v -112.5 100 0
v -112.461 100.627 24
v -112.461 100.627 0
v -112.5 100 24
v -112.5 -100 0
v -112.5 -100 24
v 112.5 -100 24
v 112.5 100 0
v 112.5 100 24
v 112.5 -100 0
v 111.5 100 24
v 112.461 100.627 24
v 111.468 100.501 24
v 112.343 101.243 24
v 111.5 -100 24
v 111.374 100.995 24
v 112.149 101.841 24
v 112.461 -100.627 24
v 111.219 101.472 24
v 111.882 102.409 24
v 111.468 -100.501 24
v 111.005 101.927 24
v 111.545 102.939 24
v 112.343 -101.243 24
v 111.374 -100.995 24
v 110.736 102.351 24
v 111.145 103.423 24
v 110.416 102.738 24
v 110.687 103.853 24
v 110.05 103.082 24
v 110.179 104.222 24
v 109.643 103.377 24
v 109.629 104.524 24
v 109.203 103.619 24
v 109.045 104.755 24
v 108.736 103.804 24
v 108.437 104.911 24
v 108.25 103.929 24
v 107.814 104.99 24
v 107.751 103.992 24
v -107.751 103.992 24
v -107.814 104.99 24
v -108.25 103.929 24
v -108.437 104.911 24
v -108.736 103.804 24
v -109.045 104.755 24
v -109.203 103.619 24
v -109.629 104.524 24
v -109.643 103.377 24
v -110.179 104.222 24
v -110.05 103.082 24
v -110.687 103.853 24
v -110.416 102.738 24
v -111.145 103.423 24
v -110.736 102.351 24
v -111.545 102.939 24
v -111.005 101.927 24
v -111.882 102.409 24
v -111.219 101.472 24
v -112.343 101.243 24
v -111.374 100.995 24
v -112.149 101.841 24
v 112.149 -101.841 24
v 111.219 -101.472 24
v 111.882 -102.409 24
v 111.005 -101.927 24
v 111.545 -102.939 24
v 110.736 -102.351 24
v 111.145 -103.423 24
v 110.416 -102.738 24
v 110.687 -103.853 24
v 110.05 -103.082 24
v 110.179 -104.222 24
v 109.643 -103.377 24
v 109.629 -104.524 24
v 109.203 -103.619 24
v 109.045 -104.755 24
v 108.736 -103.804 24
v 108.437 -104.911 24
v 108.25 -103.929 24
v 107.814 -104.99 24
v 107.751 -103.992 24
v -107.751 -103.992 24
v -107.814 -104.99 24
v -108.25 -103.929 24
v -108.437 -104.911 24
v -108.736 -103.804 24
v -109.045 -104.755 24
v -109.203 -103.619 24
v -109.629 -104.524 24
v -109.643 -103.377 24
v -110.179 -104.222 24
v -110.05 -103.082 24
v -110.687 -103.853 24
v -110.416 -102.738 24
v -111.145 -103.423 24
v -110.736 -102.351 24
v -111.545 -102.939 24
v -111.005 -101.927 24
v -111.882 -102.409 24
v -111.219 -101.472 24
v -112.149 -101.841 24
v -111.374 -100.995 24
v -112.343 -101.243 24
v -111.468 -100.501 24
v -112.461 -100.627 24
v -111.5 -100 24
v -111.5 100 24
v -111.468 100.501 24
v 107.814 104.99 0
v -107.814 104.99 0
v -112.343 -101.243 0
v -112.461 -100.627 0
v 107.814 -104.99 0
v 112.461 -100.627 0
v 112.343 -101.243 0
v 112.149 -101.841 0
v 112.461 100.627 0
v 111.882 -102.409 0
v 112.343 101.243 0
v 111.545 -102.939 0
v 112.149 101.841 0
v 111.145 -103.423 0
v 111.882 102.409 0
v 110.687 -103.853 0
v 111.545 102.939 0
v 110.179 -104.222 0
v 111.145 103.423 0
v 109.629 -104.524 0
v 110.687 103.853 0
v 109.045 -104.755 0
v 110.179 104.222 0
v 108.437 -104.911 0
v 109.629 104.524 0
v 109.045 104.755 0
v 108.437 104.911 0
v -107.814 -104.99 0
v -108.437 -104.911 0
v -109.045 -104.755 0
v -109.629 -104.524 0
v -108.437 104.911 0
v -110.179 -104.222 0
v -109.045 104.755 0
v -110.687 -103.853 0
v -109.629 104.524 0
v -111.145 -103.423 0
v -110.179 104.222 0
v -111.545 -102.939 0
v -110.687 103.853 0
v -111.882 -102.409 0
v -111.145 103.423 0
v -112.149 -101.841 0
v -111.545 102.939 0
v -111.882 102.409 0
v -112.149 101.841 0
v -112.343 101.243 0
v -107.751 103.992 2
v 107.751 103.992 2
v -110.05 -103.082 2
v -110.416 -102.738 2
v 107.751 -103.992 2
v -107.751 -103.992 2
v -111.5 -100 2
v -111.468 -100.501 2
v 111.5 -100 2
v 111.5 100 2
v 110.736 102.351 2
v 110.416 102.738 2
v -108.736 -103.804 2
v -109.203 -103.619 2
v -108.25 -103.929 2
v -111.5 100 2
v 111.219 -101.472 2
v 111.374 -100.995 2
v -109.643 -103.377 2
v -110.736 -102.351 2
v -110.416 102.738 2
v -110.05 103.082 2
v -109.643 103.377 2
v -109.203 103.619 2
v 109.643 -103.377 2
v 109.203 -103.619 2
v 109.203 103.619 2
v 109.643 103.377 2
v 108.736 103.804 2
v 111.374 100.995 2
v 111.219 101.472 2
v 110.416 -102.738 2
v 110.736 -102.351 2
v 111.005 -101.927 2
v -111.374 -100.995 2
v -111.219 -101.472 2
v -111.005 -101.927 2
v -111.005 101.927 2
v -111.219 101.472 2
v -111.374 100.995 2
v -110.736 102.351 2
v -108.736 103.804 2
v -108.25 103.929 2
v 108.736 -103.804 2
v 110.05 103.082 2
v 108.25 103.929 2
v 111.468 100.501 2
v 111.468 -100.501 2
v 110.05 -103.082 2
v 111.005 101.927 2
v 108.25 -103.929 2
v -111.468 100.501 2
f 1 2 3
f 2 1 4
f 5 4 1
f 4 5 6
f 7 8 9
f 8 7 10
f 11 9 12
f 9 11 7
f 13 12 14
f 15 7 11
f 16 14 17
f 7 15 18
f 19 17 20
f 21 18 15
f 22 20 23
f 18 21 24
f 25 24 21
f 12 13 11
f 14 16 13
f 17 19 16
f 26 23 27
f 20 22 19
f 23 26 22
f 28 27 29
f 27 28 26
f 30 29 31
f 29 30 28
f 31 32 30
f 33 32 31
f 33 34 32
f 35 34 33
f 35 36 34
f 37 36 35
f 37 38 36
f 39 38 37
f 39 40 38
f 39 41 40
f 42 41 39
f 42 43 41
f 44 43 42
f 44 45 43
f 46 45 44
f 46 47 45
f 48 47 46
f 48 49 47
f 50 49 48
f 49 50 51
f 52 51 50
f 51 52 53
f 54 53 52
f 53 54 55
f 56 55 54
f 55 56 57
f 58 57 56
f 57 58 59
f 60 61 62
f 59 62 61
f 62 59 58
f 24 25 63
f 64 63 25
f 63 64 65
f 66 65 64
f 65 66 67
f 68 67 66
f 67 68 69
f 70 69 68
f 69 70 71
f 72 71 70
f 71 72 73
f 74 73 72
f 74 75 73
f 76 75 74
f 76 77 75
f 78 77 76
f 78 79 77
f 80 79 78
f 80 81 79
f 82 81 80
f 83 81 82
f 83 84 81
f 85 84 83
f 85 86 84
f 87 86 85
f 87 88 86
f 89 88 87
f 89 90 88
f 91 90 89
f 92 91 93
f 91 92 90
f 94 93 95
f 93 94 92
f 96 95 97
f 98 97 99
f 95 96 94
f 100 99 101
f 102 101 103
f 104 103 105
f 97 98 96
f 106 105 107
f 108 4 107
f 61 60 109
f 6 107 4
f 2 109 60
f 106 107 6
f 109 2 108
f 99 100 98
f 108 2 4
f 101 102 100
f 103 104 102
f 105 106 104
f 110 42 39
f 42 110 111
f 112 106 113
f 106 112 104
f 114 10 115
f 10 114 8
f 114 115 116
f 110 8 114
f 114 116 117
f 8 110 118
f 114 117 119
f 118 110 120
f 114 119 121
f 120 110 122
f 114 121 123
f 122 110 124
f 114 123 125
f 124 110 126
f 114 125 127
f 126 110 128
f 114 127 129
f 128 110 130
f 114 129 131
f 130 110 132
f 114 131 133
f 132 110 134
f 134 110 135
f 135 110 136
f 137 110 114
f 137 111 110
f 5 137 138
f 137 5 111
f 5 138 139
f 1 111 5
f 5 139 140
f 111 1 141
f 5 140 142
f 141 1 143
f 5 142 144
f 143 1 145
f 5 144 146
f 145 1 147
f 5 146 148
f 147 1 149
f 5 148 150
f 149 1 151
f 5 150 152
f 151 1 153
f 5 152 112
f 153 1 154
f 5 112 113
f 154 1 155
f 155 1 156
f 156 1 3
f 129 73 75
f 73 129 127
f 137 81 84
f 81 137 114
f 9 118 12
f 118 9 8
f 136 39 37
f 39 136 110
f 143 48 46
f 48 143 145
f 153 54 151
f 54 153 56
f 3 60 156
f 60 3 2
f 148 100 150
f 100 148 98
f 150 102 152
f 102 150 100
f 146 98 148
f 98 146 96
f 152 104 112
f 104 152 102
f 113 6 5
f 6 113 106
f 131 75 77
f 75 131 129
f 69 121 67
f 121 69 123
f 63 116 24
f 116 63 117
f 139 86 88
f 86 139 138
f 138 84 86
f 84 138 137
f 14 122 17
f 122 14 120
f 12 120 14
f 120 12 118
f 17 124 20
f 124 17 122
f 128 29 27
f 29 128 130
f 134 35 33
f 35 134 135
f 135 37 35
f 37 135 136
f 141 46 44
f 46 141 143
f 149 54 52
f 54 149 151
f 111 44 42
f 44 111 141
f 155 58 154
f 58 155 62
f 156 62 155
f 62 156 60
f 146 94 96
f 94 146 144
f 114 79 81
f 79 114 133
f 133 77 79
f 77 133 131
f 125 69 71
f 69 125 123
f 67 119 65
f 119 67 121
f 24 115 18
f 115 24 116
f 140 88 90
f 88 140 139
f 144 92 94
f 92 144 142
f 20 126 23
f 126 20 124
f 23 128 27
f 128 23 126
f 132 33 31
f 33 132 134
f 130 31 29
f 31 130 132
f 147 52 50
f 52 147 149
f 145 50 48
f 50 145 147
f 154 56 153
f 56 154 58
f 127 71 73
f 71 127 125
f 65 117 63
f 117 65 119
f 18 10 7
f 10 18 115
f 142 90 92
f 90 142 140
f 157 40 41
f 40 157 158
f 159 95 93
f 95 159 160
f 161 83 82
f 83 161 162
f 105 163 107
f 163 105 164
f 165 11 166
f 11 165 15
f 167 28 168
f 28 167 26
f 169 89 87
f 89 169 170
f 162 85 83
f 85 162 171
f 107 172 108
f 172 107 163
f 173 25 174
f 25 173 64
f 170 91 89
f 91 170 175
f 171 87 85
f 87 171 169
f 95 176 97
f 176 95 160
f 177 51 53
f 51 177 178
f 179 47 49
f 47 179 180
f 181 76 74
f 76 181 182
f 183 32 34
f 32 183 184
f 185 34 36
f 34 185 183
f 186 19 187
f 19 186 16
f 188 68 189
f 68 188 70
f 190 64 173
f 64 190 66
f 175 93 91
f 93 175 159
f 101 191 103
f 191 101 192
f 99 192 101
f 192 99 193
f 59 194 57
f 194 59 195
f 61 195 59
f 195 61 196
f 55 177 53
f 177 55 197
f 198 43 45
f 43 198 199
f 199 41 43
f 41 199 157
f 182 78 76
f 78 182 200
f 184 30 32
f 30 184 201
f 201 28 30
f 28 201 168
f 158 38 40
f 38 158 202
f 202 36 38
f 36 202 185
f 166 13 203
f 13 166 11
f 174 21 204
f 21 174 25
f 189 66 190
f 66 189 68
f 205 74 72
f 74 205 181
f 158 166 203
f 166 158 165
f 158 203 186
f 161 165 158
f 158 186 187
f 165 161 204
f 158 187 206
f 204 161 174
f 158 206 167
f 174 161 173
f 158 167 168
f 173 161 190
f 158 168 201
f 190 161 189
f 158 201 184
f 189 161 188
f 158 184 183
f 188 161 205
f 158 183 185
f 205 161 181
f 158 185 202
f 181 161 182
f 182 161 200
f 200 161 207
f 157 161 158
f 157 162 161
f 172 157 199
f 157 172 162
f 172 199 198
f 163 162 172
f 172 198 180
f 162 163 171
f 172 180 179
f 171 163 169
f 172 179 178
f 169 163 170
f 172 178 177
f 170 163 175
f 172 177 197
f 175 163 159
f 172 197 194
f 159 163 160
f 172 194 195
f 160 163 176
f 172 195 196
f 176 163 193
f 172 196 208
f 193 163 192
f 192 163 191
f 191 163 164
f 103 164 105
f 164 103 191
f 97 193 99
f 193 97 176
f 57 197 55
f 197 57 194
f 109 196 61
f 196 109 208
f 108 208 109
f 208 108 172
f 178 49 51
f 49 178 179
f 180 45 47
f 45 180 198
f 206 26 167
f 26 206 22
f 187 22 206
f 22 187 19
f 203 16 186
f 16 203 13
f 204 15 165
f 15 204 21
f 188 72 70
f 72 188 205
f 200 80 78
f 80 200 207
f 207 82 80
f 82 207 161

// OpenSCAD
$fn = 50;


difference() {
	union() {
		hull() {
			translate(v = [-107.5000000000, 100.0000000000, 0]) {
				cylinder(h = 24, r = 5);
			}
			translate(v = [107.5000000000, 100.0000000000, 0]) {
				cylinder(h = 24, r = 5);
			}
			translate(v = [-107.5000000000, -100.0000000000, 0]) {
				cylinder(h = 24, r = 5);
			}
			translate(v = [107.5000000000, -100.0000000000, 0]) {
				cylinder(h = 24, r = 5);
			}
		}
	}
	union() {
		translate(v = [0, 0, 2]) {
			hull() {
				translate(v = [-107.5000000000, 100.0000000000, 0]) {
					cylinder(h = 22, r = 4);
				}
				translate(v = [107.5000000000, 100.0000000000, 0]) {
					cylinder(h = 22, r = 4);
				}
				translate(v = [-107.5000000000, -100.0000000000, 0]) {
					cylinder(h = 22, r = 4);
				}
				translate(v = [107.5000000000, -100.0000000000, 0]) {
					cylinder(h = 22, r = 4);
				}
			}
		}
	}
}
